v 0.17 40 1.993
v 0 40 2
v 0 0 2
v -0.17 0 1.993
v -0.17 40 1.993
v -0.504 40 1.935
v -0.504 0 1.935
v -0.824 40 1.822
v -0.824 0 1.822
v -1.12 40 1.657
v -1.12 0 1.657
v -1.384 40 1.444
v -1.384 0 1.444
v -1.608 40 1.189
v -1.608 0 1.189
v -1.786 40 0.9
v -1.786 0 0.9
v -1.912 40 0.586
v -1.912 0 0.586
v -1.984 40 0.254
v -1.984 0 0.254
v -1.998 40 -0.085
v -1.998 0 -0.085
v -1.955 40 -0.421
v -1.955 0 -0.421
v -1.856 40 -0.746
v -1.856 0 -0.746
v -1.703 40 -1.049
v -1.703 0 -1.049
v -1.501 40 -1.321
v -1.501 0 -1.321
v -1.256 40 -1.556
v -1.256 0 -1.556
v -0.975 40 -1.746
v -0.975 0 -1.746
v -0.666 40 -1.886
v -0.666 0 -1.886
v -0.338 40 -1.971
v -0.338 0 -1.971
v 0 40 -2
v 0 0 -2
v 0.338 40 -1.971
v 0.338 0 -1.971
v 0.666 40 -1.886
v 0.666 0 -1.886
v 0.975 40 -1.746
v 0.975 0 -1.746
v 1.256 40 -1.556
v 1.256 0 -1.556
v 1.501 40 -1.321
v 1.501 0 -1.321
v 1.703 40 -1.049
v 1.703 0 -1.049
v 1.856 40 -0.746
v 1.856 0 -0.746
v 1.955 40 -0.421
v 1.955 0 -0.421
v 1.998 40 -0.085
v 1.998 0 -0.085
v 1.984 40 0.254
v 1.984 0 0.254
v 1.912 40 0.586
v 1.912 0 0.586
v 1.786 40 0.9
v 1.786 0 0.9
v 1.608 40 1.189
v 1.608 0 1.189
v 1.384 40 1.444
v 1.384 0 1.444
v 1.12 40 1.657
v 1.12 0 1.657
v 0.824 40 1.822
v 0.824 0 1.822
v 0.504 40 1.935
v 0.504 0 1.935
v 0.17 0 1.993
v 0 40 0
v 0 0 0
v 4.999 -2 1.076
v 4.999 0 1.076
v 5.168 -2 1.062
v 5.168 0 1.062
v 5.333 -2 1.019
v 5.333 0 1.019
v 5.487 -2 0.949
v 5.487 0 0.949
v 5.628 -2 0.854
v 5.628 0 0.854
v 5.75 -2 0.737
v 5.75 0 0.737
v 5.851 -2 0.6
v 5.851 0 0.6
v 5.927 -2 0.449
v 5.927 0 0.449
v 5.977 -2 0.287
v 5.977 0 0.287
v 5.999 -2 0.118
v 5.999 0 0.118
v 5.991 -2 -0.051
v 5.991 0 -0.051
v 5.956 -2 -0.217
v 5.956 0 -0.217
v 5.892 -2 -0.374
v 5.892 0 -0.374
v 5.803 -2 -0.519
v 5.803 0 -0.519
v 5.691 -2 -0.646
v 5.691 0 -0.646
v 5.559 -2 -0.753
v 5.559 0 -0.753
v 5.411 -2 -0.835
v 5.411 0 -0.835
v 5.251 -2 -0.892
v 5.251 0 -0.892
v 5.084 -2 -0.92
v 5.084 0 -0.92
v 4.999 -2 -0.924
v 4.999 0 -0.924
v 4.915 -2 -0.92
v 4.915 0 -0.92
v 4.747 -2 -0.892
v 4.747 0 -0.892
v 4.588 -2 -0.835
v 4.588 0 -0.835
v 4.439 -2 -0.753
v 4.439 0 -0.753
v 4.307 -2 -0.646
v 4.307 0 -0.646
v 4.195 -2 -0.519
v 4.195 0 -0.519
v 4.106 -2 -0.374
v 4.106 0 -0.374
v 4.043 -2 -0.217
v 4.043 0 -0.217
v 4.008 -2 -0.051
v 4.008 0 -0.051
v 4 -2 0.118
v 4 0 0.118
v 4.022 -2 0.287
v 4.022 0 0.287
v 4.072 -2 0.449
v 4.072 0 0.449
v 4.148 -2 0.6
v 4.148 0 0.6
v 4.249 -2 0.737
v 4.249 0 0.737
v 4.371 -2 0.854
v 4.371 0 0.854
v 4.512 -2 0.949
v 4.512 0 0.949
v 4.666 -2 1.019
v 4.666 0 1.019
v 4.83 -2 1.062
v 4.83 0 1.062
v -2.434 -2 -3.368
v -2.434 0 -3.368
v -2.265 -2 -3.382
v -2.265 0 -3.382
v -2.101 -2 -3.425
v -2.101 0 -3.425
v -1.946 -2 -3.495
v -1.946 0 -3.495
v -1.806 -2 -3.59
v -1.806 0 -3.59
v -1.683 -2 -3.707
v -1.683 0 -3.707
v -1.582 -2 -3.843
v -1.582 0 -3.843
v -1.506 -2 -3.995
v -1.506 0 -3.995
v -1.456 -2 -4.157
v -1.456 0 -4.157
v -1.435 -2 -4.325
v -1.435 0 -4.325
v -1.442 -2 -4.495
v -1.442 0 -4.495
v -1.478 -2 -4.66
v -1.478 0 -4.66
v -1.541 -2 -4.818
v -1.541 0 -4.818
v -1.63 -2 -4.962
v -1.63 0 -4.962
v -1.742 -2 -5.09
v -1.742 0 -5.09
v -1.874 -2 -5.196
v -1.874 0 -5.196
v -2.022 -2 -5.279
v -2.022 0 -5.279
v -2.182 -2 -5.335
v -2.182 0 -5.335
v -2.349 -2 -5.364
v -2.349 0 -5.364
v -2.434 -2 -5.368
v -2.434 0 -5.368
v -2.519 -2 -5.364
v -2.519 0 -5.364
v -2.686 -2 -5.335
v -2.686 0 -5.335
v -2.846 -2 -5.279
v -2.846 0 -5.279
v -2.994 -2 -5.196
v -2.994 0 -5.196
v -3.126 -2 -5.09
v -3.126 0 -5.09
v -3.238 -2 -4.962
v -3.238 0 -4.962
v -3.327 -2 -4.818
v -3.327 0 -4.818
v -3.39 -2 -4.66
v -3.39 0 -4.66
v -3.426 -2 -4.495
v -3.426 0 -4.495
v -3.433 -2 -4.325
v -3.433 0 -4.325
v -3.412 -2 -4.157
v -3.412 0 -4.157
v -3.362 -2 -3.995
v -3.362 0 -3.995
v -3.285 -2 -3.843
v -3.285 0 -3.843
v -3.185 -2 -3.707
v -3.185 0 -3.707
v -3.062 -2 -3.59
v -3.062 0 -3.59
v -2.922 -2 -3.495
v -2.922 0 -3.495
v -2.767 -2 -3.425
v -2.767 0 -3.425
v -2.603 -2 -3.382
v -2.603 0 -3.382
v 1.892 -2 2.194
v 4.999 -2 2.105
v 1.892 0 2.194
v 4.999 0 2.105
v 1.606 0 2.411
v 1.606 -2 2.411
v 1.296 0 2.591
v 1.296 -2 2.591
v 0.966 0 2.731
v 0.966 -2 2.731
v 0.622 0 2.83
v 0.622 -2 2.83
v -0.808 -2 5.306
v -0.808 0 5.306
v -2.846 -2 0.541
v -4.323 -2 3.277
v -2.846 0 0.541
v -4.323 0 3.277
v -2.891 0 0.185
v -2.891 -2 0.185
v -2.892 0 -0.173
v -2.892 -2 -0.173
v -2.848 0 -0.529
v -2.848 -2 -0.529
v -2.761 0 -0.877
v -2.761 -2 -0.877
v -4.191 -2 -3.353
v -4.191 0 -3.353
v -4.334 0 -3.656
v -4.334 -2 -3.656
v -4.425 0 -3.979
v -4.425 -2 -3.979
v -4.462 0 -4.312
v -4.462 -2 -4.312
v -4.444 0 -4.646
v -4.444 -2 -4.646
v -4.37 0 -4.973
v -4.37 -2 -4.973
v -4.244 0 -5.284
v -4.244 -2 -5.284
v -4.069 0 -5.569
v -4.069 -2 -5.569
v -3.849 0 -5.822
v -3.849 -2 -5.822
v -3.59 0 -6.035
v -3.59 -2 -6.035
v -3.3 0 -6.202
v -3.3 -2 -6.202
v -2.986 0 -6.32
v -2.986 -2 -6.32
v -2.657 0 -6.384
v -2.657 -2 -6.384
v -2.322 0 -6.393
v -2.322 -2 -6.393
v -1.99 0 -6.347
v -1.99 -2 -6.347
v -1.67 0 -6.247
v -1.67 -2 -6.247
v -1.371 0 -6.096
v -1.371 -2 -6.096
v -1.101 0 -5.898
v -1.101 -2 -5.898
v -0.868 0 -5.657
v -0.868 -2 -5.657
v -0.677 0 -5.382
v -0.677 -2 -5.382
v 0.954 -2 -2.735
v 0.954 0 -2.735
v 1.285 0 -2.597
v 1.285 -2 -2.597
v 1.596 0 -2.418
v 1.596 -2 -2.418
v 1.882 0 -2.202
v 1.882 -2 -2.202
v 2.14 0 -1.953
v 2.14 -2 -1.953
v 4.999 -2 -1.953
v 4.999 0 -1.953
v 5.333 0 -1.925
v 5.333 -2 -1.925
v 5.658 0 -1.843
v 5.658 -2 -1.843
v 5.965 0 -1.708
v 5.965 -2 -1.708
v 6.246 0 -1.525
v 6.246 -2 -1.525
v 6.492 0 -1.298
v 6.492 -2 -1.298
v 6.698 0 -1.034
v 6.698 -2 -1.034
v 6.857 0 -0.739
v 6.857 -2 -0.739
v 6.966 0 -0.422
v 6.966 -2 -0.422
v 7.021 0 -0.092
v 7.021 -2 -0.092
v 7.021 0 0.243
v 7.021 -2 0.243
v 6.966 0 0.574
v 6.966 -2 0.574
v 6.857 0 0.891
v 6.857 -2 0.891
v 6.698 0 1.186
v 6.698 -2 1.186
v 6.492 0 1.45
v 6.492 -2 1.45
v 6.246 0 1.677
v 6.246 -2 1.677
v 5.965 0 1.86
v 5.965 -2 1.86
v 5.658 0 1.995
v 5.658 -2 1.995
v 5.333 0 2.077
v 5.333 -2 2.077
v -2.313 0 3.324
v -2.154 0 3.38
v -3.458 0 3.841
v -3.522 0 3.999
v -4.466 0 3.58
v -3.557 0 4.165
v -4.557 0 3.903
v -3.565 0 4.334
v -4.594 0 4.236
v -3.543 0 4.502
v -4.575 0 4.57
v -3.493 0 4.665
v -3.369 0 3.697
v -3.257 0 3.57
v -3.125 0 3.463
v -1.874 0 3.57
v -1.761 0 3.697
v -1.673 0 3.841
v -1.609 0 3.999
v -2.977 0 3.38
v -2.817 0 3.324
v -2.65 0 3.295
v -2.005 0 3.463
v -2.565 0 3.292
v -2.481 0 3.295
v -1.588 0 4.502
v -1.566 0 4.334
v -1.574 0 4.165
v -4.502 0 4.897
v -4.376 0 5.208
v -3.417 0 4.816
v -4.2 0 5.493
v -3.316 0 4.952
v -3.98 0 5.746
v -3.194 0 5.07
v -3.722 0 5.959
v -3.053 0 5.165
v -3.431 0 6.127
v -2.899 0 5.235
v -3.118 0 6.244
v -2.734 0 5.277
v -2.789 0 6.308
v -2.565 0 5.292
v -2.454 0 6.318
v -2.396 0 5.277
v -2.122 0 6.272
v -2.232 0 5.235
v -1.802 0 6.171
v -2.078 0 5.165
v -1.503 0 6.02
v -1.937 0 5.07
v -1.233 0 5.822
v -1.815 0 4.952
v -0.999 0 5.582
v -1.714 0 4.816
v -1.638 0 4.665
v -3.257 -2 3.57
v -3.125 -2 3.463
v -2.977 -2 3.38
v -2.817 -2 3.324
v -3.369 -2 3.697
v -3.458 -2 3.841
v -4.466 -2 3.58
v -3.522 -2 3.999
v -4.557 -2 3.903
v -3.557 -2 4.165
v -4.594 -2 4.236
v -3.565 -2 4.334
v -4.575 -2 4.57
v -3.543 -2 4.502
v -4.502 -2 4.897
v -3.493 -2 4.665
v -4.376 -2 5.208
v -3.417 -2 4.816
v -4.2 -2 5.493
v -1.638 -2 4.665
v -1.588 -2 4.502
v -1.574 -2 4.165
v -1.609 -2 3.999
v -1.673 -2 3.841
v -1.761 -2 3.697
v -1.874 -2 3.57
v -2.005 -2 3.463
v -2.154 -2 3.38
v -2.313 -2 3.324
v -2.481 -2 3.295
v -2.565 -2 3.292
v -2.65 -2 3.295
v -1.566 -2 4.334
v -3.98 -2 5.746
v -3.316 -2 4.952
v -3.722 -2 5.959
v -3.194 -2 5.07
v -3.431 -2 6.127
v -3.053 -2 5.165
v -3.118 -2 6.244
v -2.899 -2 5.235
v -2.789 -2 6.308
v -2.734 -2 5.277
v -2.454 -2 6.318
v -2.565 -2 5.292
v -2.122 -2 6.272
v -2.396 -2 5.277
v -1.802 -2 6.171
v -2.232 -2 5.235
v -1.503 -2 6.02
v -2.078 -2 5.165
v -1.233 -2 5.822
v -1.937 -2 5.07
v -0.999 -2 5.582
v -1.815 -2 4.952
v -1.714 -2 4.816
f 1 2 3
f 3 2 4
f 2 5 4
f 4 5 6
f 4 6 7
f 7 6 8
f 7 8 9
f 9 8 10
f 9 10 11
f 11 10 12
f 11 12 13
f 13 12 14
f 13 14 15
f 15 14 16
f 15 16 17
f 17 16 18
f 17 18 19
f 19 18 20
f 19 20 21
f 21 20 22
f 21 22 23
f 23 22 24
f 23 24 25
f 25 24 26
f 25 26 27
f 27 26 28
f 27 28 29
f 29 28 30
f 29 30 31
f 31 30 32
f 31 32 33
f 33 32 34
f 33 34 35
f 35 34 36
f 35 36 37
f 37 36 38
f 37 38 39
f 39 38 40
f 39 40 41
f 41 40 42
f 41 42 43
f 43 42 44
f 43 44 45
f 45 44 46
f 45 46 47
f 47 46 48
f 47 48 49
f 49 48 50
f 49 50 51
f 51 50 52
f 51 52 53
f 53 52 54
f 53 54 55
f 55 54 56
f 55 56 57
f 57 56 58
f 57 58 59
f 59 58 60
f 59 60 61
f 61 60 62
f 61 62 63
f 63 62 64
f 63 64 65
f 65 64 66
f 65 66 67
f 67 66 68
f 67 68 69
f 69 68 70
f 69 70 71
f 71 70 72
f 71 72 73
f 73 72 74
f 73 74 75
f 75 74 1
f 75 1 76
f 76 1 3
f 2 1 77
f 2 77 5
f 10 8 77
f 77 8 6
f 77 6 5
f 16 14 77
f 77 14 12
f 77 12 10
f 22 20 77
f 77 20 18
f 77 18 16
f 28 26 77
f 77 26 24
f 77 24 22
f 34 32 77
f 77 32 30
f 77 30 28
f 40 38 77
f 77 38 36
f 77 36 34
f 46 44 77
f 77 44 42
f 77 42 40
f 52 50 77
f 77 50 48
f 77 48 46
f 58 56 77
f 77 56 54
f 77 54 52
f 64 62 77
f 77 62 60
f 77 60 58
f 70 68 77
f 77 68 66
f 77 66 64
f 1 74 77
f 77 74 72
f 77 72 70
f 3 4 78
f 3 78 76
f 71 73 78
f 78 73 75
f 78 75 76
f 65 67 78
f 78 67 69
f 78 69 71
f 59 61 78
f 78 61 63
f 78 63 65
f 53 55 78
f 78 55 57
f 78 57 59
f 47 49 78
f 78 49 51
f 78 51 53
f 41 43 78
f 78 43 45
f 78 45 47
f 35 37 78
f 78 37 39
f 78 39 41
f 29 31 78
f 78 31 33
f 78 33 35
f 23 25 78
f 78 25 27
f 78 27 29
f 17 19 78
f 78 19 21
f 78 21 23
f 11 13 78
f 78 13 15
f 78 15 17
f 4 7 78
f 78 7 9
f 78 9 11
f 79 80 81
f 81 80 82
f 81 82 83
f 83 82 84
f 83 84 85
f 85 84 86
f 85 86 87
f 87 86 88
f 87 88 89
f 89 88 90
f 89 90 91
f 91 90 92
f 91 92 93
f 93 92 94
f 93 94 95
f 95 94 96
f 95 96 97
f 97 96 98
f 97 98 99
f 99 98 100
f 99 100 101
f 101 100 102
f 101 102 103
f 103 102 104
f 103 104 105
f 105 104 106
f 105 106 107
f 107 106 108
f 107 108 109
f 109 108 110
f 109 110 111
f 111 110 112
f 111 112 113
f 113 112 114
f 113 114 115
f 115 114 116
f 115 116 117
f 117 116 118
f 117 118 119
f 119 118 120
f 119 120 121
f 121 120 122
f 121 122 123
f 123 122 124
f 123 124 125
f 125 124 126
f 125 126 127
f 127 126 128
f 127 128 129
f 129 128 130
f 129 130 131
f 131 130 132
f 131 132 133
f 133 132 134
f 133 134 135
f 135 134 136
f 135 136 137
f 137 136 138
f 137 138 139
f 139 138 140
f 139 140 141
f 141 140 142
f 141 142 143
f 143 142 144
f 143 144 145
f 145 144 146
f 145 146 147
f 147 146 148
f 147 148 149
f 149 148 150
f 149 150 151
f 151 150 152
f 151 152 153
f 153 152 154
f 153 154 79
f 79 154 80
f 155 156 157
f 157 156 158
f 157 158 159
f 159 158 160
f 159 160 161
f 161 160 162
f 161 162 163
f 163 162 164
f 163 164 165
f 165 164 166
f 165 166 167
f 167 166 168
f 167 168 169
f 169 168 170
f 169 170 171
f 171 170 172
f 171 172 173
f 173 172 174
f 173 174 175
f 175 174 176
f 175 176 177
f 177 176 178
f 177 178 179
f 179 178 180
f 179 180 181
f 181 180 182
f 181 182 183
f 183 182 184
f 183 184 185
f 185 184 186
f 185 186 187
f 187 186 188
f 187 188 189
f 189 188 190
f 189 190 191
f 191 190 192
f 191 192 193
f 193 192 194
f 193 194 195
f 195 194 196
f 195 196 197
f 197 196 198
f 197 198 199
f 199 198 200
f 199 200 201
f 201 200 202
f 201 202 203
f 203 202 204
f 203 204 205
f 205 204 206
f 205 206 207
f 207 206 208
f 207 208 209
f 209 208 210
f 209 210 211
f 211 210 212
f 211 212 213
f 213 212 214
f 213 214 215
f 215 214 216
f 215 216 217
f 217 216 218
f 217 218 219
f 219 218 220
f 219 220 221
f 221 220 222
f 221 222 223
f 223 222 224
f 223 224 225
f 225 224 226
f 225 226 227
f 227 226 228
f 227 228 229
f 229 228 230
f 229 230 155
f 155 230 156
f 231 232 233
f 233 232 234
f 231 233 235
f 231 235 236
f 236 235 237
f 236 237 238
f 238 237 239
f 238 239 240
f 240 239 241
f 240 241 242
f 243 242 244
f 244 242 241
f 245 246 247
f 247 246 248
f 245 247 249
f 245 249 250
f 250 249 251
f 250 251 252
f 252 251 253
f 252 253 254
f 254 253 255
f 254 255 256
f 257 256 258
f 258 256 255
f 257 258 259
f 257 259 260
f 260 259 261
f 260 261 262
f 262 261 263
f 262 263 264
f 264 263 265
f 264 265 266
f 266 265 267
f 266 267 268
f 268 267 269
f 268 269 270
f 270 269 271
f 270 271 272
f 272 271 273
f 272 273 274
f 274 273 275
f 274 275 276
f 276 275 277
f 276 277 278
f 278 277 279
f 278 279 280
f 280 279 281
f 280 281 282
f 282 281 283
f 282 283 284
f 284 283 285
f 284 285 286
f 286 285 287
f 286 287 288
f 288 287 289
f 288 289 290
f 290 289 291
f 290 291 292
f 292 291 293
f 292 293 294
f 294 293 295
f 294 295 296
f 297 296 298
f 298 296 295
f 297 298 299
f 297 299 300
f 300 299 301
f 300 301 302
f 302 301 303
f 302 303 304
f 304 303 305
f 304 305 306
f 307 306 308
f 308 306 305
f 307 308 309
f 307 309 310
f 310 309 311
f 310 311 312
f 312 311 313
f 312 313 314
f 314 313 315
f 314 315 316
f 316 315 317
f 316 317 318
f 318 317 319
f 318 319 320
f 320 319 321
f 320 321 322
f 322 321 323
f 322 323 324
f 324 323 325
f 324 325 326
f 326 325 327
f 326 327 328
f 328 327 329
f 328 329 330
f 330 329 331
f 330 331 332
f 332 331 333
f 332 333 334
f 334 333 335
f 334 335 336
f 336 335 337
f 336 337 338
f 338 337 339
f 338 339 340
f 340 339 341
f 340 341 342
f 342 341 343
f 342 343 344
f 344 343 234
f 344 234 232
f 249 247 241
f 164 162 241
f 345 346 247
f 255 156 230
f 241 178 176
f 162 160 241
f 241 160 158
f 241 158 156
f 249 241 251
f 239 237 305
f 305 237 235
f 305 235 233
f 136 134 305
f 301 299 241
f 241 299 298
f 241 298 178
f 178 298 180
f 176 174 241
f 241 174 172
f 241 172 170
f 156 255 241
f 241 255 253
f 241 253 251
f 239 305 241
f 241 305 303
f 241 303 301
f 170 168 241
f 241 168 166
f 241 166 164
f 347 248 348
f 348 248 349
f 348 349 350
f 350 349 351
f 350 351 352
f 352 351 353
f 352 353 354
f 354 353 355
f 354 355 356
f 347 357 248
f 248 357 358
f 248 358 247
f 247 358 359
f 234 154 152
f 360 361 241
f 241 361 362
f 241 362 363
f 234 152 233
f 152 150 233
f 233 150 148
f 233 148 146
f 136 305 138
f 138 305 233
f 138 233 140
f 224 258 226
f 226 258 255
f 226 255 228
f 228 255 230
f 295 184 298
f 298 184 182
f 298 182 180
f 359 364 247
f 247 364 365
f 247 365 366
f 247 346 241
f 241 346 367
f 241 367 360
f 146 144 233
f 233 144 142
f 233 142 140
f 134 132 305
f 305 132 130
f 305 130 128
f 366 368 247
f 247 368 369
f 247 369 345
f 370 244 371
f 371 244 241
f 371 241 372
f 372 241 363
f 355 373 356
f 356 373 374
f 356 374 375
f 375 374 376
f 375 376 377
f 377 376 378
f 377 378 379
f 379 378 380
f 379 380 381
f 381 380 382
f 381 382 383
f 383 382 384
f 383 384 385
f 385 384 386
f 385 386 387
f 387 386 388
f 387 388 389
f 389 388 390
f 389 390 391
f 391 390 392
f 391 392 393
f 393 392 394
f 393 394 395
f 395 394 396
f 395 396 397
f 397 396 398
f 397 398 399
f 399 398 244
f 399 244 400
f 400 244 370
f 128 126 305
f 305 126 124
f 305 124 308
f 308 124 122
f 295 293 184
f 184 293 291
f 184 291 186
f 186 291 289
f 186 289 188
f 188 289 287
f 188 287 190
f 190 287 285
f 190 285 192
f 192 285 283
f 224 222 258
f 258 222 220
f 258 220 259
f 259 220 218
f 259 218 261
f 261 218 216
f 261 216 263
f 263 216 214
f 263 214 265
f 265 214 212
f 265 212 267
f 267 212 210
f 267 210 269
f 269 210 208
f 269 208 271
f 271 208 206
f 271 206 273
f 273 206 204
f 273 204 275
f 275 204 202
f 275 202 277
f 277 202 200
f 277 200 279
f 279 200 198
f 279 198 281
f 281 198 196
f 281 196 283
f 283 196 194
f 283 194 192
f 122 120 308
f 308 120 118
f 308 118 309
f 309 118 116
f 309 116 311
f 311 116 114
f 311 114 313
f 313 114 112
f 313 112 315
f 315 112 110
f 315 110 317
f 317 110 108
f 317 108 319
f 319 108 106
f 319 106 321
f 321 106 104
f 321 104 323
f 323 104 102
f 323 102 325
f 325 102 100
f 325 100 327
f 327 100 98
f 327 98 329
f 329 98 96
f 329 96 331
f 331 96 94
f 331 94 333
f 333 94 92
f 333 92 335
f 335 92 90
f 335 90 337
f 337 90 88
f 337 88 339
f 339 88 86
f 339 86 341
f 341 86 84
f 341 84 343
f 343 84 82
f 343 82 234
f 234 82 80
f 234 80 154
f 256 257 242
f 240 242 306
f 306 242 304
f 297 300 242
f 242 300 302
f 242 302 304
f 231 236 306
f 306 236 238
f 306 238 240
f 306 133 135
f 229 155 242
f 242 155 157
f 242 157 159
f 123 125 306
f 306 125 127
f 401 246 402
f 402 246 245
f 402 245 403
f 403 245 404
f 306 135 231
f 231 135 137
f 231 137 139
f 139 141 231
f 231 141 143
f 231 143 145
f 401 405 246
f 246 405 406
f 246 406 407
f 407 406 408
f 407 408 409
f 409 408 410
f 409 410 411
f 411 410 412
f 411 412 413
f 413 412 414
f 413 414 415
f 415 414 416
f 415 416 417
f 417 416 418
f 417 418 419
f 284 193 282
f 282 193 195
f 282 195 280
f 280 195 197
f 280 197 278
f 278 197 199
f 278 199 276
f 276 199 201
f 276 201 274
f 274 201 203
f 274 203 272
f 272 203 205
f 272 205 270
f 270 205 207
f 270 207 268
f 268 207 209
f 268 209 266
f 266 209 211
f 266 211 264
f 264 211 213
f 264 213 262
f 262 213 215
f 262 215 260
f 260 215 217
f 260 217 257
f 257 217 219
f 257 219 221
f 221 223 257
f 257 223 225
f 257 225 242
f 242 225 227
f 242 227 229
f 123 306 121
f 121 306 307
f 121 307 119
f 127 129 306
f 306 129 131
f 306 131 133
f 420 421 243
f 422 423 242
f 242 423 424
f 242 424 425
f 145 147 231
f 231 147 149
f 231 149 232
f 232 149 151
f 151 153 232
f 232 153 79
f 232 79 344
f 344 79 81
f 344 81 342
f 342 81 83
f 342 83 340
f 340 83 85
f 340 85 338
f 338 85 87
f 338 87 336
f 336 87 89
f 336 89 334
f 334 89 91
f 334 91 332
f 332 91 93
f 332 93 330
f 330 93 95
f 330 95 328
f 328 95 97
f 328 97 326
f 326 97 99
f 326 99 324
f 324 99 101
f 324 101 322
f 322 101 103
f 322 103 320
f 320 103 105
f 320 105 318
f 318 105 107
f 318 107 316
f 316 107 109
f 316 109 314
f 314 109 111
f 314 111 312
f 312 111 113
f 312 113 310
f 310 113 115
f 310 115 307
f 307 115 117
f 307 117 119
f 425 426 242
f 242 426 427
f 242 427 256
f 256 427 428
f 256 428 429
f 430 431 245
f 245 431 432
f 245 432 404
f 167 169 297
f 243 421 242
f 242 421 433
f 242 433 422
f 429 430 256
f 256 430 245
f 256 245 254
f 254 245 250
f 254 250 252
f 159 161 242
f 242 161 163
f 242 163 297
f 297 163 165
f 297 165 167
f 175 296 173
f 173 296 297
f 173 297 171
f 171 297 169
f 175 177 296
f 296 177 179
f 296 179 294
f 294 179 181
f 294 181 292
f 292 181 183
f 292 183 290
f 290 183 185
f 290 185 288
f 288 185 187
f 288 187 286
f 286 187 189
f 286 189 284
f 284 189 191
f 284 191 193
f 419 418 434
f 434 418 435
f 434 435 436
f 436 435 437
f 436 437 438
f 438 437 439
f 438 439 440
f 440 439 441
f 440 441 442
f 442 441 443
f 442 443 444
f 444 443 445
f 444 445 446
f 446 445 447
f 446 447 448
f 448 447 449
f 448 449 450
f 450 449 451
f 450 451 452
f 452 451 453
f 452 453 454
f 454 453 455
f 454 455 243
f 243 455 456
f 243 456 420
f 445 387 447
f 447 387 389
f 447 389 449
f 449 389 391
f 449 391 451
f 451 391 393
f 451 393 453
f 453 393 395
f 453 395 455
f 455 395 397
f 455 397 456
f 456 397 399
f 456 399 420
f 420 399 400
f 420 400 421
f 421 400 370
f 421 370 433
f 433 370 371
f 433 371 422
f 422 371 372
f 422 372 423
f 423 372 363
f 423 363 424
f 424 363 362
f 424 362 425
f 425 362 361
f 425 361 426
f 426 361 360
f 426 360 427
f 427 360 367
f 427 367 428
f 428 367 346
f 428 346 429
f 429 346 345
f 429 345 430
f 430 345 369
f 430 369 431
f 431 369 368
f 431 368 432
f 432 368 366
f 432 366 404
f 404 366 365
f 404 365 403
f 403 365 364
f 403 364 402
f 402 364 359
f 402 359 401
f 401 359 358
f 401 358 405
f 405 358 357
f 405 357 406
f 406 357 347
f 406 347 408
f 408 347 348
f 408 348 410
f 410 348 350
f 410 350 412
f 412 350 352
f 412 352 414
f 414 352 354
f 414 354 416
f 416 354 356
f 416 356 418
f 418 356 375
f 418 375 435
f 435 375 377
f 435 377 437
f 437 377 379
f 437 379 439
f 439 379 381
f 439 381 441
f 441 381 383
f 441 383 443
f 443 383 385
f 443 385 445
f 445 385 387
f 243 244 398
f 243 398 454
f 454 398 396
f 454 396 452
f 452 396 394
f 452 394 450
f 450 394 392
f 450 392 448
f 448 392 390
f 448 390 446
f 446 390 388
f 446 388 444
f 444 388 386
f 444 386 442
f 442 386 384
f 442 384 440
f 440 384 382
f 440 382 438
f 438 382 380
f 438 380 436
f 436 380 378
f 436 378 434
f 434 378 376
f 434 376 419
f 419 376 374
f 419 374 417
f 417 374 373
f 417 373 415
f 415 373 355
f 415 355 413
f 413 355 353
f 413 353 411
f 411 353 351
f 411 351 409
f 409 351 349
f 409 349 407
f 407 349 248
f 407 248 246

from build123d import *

# Parameters (mm, degrees)
SKETCH1_R           = 2
BOSS_EXTRUDE1_DEPTH = 40
SKETCH2_R           = 1
BOSS_EXTRUDE2_DEPTH = 2


with BuildPart() as part:
    # Sketch1 → Boss-Extrude1 (new body)
    with BuildSketch(Plane(origin=(0, 0, 0), x_dir=(1, 0, 0), z_dir=(0, 1, 0))):
        with Locations(Location((0, 0, 0), (0, 0, 270))):
            Circle(SKETCH1_R)
    extrude(amount=BOSS_EXTRUDE1_DEPTH)


with BuildPart() as body_2:
    # Sketch2 → Boss-Extrude2 (new body)
    with BuildSketch(Plane.XZ):
        with BuildLine():
            Line((2.139742133, -1.953041124), (4.99942355, -1.953041124))
            ThreePointArc((4.99942355, -1.953041124), (7.028386794, 0.07592212), (4.99942355, 2.104885364))
            Line((4.99942355, 2.104885364), (1.891641497, 2.194210216))
            ThreePointArc((1.891641497, 2.194210216), (1.296114465, 2.590936765), (0.621512161, 2.829591606))
            Line((0.621512161, 2.829591606), (-0.808328547, 5.30614836))
            ThreePointArc((-0.808328547, 5.30614836), (-3.579943881, 6.048800451), (-4.322595972, 3.277185117))
            Line((-4.322595972, 3.277185117), (-2.846062537, 0.541104484))
            ThreePointArc((-2.846062537, 0.541104484), (-2.89187429, -0.17300033), (-2.761254294, -0.876550483))
            Line((-2.761254294, -0.876550483), (-4.191095003, -3.353107237))
            ThreePointArc((-4.191095003, -3.353107237), (-3.448442912, -6.124722571), (-0.676827578, -5.38207048))
            Line((-0.676827578, -5.38207048), (0.954421039, -2.7353147))
            ThreePointArc((0.954421039, -2.7353147), (1.595759826, -2.417936435), (2.139742133, -1.953041124))
        make_face()
        with Locations(Location((4.99942355, 0.07592212, 0), (0, 0, 270))):
            Circle(SKETCH2_R, mode=Mode.SUBTRACT)
        with Locations(Location((-2.565462259, 4.291666739, 0), (0, 0, 270))):
            Circle(SKETCH2_R, mode=Mode.SUBTRACT)
        with Locations(Location((-2.43396129, -4.367588858, 0), (0, 0, 270))):
            Circle(SKETCH2_R, mode=Mode.SUBTRACT)
    extrude(amount=BOSS_EXTRUDE2_DEPTH)


solid = Compound([part.part, body_2.part])
